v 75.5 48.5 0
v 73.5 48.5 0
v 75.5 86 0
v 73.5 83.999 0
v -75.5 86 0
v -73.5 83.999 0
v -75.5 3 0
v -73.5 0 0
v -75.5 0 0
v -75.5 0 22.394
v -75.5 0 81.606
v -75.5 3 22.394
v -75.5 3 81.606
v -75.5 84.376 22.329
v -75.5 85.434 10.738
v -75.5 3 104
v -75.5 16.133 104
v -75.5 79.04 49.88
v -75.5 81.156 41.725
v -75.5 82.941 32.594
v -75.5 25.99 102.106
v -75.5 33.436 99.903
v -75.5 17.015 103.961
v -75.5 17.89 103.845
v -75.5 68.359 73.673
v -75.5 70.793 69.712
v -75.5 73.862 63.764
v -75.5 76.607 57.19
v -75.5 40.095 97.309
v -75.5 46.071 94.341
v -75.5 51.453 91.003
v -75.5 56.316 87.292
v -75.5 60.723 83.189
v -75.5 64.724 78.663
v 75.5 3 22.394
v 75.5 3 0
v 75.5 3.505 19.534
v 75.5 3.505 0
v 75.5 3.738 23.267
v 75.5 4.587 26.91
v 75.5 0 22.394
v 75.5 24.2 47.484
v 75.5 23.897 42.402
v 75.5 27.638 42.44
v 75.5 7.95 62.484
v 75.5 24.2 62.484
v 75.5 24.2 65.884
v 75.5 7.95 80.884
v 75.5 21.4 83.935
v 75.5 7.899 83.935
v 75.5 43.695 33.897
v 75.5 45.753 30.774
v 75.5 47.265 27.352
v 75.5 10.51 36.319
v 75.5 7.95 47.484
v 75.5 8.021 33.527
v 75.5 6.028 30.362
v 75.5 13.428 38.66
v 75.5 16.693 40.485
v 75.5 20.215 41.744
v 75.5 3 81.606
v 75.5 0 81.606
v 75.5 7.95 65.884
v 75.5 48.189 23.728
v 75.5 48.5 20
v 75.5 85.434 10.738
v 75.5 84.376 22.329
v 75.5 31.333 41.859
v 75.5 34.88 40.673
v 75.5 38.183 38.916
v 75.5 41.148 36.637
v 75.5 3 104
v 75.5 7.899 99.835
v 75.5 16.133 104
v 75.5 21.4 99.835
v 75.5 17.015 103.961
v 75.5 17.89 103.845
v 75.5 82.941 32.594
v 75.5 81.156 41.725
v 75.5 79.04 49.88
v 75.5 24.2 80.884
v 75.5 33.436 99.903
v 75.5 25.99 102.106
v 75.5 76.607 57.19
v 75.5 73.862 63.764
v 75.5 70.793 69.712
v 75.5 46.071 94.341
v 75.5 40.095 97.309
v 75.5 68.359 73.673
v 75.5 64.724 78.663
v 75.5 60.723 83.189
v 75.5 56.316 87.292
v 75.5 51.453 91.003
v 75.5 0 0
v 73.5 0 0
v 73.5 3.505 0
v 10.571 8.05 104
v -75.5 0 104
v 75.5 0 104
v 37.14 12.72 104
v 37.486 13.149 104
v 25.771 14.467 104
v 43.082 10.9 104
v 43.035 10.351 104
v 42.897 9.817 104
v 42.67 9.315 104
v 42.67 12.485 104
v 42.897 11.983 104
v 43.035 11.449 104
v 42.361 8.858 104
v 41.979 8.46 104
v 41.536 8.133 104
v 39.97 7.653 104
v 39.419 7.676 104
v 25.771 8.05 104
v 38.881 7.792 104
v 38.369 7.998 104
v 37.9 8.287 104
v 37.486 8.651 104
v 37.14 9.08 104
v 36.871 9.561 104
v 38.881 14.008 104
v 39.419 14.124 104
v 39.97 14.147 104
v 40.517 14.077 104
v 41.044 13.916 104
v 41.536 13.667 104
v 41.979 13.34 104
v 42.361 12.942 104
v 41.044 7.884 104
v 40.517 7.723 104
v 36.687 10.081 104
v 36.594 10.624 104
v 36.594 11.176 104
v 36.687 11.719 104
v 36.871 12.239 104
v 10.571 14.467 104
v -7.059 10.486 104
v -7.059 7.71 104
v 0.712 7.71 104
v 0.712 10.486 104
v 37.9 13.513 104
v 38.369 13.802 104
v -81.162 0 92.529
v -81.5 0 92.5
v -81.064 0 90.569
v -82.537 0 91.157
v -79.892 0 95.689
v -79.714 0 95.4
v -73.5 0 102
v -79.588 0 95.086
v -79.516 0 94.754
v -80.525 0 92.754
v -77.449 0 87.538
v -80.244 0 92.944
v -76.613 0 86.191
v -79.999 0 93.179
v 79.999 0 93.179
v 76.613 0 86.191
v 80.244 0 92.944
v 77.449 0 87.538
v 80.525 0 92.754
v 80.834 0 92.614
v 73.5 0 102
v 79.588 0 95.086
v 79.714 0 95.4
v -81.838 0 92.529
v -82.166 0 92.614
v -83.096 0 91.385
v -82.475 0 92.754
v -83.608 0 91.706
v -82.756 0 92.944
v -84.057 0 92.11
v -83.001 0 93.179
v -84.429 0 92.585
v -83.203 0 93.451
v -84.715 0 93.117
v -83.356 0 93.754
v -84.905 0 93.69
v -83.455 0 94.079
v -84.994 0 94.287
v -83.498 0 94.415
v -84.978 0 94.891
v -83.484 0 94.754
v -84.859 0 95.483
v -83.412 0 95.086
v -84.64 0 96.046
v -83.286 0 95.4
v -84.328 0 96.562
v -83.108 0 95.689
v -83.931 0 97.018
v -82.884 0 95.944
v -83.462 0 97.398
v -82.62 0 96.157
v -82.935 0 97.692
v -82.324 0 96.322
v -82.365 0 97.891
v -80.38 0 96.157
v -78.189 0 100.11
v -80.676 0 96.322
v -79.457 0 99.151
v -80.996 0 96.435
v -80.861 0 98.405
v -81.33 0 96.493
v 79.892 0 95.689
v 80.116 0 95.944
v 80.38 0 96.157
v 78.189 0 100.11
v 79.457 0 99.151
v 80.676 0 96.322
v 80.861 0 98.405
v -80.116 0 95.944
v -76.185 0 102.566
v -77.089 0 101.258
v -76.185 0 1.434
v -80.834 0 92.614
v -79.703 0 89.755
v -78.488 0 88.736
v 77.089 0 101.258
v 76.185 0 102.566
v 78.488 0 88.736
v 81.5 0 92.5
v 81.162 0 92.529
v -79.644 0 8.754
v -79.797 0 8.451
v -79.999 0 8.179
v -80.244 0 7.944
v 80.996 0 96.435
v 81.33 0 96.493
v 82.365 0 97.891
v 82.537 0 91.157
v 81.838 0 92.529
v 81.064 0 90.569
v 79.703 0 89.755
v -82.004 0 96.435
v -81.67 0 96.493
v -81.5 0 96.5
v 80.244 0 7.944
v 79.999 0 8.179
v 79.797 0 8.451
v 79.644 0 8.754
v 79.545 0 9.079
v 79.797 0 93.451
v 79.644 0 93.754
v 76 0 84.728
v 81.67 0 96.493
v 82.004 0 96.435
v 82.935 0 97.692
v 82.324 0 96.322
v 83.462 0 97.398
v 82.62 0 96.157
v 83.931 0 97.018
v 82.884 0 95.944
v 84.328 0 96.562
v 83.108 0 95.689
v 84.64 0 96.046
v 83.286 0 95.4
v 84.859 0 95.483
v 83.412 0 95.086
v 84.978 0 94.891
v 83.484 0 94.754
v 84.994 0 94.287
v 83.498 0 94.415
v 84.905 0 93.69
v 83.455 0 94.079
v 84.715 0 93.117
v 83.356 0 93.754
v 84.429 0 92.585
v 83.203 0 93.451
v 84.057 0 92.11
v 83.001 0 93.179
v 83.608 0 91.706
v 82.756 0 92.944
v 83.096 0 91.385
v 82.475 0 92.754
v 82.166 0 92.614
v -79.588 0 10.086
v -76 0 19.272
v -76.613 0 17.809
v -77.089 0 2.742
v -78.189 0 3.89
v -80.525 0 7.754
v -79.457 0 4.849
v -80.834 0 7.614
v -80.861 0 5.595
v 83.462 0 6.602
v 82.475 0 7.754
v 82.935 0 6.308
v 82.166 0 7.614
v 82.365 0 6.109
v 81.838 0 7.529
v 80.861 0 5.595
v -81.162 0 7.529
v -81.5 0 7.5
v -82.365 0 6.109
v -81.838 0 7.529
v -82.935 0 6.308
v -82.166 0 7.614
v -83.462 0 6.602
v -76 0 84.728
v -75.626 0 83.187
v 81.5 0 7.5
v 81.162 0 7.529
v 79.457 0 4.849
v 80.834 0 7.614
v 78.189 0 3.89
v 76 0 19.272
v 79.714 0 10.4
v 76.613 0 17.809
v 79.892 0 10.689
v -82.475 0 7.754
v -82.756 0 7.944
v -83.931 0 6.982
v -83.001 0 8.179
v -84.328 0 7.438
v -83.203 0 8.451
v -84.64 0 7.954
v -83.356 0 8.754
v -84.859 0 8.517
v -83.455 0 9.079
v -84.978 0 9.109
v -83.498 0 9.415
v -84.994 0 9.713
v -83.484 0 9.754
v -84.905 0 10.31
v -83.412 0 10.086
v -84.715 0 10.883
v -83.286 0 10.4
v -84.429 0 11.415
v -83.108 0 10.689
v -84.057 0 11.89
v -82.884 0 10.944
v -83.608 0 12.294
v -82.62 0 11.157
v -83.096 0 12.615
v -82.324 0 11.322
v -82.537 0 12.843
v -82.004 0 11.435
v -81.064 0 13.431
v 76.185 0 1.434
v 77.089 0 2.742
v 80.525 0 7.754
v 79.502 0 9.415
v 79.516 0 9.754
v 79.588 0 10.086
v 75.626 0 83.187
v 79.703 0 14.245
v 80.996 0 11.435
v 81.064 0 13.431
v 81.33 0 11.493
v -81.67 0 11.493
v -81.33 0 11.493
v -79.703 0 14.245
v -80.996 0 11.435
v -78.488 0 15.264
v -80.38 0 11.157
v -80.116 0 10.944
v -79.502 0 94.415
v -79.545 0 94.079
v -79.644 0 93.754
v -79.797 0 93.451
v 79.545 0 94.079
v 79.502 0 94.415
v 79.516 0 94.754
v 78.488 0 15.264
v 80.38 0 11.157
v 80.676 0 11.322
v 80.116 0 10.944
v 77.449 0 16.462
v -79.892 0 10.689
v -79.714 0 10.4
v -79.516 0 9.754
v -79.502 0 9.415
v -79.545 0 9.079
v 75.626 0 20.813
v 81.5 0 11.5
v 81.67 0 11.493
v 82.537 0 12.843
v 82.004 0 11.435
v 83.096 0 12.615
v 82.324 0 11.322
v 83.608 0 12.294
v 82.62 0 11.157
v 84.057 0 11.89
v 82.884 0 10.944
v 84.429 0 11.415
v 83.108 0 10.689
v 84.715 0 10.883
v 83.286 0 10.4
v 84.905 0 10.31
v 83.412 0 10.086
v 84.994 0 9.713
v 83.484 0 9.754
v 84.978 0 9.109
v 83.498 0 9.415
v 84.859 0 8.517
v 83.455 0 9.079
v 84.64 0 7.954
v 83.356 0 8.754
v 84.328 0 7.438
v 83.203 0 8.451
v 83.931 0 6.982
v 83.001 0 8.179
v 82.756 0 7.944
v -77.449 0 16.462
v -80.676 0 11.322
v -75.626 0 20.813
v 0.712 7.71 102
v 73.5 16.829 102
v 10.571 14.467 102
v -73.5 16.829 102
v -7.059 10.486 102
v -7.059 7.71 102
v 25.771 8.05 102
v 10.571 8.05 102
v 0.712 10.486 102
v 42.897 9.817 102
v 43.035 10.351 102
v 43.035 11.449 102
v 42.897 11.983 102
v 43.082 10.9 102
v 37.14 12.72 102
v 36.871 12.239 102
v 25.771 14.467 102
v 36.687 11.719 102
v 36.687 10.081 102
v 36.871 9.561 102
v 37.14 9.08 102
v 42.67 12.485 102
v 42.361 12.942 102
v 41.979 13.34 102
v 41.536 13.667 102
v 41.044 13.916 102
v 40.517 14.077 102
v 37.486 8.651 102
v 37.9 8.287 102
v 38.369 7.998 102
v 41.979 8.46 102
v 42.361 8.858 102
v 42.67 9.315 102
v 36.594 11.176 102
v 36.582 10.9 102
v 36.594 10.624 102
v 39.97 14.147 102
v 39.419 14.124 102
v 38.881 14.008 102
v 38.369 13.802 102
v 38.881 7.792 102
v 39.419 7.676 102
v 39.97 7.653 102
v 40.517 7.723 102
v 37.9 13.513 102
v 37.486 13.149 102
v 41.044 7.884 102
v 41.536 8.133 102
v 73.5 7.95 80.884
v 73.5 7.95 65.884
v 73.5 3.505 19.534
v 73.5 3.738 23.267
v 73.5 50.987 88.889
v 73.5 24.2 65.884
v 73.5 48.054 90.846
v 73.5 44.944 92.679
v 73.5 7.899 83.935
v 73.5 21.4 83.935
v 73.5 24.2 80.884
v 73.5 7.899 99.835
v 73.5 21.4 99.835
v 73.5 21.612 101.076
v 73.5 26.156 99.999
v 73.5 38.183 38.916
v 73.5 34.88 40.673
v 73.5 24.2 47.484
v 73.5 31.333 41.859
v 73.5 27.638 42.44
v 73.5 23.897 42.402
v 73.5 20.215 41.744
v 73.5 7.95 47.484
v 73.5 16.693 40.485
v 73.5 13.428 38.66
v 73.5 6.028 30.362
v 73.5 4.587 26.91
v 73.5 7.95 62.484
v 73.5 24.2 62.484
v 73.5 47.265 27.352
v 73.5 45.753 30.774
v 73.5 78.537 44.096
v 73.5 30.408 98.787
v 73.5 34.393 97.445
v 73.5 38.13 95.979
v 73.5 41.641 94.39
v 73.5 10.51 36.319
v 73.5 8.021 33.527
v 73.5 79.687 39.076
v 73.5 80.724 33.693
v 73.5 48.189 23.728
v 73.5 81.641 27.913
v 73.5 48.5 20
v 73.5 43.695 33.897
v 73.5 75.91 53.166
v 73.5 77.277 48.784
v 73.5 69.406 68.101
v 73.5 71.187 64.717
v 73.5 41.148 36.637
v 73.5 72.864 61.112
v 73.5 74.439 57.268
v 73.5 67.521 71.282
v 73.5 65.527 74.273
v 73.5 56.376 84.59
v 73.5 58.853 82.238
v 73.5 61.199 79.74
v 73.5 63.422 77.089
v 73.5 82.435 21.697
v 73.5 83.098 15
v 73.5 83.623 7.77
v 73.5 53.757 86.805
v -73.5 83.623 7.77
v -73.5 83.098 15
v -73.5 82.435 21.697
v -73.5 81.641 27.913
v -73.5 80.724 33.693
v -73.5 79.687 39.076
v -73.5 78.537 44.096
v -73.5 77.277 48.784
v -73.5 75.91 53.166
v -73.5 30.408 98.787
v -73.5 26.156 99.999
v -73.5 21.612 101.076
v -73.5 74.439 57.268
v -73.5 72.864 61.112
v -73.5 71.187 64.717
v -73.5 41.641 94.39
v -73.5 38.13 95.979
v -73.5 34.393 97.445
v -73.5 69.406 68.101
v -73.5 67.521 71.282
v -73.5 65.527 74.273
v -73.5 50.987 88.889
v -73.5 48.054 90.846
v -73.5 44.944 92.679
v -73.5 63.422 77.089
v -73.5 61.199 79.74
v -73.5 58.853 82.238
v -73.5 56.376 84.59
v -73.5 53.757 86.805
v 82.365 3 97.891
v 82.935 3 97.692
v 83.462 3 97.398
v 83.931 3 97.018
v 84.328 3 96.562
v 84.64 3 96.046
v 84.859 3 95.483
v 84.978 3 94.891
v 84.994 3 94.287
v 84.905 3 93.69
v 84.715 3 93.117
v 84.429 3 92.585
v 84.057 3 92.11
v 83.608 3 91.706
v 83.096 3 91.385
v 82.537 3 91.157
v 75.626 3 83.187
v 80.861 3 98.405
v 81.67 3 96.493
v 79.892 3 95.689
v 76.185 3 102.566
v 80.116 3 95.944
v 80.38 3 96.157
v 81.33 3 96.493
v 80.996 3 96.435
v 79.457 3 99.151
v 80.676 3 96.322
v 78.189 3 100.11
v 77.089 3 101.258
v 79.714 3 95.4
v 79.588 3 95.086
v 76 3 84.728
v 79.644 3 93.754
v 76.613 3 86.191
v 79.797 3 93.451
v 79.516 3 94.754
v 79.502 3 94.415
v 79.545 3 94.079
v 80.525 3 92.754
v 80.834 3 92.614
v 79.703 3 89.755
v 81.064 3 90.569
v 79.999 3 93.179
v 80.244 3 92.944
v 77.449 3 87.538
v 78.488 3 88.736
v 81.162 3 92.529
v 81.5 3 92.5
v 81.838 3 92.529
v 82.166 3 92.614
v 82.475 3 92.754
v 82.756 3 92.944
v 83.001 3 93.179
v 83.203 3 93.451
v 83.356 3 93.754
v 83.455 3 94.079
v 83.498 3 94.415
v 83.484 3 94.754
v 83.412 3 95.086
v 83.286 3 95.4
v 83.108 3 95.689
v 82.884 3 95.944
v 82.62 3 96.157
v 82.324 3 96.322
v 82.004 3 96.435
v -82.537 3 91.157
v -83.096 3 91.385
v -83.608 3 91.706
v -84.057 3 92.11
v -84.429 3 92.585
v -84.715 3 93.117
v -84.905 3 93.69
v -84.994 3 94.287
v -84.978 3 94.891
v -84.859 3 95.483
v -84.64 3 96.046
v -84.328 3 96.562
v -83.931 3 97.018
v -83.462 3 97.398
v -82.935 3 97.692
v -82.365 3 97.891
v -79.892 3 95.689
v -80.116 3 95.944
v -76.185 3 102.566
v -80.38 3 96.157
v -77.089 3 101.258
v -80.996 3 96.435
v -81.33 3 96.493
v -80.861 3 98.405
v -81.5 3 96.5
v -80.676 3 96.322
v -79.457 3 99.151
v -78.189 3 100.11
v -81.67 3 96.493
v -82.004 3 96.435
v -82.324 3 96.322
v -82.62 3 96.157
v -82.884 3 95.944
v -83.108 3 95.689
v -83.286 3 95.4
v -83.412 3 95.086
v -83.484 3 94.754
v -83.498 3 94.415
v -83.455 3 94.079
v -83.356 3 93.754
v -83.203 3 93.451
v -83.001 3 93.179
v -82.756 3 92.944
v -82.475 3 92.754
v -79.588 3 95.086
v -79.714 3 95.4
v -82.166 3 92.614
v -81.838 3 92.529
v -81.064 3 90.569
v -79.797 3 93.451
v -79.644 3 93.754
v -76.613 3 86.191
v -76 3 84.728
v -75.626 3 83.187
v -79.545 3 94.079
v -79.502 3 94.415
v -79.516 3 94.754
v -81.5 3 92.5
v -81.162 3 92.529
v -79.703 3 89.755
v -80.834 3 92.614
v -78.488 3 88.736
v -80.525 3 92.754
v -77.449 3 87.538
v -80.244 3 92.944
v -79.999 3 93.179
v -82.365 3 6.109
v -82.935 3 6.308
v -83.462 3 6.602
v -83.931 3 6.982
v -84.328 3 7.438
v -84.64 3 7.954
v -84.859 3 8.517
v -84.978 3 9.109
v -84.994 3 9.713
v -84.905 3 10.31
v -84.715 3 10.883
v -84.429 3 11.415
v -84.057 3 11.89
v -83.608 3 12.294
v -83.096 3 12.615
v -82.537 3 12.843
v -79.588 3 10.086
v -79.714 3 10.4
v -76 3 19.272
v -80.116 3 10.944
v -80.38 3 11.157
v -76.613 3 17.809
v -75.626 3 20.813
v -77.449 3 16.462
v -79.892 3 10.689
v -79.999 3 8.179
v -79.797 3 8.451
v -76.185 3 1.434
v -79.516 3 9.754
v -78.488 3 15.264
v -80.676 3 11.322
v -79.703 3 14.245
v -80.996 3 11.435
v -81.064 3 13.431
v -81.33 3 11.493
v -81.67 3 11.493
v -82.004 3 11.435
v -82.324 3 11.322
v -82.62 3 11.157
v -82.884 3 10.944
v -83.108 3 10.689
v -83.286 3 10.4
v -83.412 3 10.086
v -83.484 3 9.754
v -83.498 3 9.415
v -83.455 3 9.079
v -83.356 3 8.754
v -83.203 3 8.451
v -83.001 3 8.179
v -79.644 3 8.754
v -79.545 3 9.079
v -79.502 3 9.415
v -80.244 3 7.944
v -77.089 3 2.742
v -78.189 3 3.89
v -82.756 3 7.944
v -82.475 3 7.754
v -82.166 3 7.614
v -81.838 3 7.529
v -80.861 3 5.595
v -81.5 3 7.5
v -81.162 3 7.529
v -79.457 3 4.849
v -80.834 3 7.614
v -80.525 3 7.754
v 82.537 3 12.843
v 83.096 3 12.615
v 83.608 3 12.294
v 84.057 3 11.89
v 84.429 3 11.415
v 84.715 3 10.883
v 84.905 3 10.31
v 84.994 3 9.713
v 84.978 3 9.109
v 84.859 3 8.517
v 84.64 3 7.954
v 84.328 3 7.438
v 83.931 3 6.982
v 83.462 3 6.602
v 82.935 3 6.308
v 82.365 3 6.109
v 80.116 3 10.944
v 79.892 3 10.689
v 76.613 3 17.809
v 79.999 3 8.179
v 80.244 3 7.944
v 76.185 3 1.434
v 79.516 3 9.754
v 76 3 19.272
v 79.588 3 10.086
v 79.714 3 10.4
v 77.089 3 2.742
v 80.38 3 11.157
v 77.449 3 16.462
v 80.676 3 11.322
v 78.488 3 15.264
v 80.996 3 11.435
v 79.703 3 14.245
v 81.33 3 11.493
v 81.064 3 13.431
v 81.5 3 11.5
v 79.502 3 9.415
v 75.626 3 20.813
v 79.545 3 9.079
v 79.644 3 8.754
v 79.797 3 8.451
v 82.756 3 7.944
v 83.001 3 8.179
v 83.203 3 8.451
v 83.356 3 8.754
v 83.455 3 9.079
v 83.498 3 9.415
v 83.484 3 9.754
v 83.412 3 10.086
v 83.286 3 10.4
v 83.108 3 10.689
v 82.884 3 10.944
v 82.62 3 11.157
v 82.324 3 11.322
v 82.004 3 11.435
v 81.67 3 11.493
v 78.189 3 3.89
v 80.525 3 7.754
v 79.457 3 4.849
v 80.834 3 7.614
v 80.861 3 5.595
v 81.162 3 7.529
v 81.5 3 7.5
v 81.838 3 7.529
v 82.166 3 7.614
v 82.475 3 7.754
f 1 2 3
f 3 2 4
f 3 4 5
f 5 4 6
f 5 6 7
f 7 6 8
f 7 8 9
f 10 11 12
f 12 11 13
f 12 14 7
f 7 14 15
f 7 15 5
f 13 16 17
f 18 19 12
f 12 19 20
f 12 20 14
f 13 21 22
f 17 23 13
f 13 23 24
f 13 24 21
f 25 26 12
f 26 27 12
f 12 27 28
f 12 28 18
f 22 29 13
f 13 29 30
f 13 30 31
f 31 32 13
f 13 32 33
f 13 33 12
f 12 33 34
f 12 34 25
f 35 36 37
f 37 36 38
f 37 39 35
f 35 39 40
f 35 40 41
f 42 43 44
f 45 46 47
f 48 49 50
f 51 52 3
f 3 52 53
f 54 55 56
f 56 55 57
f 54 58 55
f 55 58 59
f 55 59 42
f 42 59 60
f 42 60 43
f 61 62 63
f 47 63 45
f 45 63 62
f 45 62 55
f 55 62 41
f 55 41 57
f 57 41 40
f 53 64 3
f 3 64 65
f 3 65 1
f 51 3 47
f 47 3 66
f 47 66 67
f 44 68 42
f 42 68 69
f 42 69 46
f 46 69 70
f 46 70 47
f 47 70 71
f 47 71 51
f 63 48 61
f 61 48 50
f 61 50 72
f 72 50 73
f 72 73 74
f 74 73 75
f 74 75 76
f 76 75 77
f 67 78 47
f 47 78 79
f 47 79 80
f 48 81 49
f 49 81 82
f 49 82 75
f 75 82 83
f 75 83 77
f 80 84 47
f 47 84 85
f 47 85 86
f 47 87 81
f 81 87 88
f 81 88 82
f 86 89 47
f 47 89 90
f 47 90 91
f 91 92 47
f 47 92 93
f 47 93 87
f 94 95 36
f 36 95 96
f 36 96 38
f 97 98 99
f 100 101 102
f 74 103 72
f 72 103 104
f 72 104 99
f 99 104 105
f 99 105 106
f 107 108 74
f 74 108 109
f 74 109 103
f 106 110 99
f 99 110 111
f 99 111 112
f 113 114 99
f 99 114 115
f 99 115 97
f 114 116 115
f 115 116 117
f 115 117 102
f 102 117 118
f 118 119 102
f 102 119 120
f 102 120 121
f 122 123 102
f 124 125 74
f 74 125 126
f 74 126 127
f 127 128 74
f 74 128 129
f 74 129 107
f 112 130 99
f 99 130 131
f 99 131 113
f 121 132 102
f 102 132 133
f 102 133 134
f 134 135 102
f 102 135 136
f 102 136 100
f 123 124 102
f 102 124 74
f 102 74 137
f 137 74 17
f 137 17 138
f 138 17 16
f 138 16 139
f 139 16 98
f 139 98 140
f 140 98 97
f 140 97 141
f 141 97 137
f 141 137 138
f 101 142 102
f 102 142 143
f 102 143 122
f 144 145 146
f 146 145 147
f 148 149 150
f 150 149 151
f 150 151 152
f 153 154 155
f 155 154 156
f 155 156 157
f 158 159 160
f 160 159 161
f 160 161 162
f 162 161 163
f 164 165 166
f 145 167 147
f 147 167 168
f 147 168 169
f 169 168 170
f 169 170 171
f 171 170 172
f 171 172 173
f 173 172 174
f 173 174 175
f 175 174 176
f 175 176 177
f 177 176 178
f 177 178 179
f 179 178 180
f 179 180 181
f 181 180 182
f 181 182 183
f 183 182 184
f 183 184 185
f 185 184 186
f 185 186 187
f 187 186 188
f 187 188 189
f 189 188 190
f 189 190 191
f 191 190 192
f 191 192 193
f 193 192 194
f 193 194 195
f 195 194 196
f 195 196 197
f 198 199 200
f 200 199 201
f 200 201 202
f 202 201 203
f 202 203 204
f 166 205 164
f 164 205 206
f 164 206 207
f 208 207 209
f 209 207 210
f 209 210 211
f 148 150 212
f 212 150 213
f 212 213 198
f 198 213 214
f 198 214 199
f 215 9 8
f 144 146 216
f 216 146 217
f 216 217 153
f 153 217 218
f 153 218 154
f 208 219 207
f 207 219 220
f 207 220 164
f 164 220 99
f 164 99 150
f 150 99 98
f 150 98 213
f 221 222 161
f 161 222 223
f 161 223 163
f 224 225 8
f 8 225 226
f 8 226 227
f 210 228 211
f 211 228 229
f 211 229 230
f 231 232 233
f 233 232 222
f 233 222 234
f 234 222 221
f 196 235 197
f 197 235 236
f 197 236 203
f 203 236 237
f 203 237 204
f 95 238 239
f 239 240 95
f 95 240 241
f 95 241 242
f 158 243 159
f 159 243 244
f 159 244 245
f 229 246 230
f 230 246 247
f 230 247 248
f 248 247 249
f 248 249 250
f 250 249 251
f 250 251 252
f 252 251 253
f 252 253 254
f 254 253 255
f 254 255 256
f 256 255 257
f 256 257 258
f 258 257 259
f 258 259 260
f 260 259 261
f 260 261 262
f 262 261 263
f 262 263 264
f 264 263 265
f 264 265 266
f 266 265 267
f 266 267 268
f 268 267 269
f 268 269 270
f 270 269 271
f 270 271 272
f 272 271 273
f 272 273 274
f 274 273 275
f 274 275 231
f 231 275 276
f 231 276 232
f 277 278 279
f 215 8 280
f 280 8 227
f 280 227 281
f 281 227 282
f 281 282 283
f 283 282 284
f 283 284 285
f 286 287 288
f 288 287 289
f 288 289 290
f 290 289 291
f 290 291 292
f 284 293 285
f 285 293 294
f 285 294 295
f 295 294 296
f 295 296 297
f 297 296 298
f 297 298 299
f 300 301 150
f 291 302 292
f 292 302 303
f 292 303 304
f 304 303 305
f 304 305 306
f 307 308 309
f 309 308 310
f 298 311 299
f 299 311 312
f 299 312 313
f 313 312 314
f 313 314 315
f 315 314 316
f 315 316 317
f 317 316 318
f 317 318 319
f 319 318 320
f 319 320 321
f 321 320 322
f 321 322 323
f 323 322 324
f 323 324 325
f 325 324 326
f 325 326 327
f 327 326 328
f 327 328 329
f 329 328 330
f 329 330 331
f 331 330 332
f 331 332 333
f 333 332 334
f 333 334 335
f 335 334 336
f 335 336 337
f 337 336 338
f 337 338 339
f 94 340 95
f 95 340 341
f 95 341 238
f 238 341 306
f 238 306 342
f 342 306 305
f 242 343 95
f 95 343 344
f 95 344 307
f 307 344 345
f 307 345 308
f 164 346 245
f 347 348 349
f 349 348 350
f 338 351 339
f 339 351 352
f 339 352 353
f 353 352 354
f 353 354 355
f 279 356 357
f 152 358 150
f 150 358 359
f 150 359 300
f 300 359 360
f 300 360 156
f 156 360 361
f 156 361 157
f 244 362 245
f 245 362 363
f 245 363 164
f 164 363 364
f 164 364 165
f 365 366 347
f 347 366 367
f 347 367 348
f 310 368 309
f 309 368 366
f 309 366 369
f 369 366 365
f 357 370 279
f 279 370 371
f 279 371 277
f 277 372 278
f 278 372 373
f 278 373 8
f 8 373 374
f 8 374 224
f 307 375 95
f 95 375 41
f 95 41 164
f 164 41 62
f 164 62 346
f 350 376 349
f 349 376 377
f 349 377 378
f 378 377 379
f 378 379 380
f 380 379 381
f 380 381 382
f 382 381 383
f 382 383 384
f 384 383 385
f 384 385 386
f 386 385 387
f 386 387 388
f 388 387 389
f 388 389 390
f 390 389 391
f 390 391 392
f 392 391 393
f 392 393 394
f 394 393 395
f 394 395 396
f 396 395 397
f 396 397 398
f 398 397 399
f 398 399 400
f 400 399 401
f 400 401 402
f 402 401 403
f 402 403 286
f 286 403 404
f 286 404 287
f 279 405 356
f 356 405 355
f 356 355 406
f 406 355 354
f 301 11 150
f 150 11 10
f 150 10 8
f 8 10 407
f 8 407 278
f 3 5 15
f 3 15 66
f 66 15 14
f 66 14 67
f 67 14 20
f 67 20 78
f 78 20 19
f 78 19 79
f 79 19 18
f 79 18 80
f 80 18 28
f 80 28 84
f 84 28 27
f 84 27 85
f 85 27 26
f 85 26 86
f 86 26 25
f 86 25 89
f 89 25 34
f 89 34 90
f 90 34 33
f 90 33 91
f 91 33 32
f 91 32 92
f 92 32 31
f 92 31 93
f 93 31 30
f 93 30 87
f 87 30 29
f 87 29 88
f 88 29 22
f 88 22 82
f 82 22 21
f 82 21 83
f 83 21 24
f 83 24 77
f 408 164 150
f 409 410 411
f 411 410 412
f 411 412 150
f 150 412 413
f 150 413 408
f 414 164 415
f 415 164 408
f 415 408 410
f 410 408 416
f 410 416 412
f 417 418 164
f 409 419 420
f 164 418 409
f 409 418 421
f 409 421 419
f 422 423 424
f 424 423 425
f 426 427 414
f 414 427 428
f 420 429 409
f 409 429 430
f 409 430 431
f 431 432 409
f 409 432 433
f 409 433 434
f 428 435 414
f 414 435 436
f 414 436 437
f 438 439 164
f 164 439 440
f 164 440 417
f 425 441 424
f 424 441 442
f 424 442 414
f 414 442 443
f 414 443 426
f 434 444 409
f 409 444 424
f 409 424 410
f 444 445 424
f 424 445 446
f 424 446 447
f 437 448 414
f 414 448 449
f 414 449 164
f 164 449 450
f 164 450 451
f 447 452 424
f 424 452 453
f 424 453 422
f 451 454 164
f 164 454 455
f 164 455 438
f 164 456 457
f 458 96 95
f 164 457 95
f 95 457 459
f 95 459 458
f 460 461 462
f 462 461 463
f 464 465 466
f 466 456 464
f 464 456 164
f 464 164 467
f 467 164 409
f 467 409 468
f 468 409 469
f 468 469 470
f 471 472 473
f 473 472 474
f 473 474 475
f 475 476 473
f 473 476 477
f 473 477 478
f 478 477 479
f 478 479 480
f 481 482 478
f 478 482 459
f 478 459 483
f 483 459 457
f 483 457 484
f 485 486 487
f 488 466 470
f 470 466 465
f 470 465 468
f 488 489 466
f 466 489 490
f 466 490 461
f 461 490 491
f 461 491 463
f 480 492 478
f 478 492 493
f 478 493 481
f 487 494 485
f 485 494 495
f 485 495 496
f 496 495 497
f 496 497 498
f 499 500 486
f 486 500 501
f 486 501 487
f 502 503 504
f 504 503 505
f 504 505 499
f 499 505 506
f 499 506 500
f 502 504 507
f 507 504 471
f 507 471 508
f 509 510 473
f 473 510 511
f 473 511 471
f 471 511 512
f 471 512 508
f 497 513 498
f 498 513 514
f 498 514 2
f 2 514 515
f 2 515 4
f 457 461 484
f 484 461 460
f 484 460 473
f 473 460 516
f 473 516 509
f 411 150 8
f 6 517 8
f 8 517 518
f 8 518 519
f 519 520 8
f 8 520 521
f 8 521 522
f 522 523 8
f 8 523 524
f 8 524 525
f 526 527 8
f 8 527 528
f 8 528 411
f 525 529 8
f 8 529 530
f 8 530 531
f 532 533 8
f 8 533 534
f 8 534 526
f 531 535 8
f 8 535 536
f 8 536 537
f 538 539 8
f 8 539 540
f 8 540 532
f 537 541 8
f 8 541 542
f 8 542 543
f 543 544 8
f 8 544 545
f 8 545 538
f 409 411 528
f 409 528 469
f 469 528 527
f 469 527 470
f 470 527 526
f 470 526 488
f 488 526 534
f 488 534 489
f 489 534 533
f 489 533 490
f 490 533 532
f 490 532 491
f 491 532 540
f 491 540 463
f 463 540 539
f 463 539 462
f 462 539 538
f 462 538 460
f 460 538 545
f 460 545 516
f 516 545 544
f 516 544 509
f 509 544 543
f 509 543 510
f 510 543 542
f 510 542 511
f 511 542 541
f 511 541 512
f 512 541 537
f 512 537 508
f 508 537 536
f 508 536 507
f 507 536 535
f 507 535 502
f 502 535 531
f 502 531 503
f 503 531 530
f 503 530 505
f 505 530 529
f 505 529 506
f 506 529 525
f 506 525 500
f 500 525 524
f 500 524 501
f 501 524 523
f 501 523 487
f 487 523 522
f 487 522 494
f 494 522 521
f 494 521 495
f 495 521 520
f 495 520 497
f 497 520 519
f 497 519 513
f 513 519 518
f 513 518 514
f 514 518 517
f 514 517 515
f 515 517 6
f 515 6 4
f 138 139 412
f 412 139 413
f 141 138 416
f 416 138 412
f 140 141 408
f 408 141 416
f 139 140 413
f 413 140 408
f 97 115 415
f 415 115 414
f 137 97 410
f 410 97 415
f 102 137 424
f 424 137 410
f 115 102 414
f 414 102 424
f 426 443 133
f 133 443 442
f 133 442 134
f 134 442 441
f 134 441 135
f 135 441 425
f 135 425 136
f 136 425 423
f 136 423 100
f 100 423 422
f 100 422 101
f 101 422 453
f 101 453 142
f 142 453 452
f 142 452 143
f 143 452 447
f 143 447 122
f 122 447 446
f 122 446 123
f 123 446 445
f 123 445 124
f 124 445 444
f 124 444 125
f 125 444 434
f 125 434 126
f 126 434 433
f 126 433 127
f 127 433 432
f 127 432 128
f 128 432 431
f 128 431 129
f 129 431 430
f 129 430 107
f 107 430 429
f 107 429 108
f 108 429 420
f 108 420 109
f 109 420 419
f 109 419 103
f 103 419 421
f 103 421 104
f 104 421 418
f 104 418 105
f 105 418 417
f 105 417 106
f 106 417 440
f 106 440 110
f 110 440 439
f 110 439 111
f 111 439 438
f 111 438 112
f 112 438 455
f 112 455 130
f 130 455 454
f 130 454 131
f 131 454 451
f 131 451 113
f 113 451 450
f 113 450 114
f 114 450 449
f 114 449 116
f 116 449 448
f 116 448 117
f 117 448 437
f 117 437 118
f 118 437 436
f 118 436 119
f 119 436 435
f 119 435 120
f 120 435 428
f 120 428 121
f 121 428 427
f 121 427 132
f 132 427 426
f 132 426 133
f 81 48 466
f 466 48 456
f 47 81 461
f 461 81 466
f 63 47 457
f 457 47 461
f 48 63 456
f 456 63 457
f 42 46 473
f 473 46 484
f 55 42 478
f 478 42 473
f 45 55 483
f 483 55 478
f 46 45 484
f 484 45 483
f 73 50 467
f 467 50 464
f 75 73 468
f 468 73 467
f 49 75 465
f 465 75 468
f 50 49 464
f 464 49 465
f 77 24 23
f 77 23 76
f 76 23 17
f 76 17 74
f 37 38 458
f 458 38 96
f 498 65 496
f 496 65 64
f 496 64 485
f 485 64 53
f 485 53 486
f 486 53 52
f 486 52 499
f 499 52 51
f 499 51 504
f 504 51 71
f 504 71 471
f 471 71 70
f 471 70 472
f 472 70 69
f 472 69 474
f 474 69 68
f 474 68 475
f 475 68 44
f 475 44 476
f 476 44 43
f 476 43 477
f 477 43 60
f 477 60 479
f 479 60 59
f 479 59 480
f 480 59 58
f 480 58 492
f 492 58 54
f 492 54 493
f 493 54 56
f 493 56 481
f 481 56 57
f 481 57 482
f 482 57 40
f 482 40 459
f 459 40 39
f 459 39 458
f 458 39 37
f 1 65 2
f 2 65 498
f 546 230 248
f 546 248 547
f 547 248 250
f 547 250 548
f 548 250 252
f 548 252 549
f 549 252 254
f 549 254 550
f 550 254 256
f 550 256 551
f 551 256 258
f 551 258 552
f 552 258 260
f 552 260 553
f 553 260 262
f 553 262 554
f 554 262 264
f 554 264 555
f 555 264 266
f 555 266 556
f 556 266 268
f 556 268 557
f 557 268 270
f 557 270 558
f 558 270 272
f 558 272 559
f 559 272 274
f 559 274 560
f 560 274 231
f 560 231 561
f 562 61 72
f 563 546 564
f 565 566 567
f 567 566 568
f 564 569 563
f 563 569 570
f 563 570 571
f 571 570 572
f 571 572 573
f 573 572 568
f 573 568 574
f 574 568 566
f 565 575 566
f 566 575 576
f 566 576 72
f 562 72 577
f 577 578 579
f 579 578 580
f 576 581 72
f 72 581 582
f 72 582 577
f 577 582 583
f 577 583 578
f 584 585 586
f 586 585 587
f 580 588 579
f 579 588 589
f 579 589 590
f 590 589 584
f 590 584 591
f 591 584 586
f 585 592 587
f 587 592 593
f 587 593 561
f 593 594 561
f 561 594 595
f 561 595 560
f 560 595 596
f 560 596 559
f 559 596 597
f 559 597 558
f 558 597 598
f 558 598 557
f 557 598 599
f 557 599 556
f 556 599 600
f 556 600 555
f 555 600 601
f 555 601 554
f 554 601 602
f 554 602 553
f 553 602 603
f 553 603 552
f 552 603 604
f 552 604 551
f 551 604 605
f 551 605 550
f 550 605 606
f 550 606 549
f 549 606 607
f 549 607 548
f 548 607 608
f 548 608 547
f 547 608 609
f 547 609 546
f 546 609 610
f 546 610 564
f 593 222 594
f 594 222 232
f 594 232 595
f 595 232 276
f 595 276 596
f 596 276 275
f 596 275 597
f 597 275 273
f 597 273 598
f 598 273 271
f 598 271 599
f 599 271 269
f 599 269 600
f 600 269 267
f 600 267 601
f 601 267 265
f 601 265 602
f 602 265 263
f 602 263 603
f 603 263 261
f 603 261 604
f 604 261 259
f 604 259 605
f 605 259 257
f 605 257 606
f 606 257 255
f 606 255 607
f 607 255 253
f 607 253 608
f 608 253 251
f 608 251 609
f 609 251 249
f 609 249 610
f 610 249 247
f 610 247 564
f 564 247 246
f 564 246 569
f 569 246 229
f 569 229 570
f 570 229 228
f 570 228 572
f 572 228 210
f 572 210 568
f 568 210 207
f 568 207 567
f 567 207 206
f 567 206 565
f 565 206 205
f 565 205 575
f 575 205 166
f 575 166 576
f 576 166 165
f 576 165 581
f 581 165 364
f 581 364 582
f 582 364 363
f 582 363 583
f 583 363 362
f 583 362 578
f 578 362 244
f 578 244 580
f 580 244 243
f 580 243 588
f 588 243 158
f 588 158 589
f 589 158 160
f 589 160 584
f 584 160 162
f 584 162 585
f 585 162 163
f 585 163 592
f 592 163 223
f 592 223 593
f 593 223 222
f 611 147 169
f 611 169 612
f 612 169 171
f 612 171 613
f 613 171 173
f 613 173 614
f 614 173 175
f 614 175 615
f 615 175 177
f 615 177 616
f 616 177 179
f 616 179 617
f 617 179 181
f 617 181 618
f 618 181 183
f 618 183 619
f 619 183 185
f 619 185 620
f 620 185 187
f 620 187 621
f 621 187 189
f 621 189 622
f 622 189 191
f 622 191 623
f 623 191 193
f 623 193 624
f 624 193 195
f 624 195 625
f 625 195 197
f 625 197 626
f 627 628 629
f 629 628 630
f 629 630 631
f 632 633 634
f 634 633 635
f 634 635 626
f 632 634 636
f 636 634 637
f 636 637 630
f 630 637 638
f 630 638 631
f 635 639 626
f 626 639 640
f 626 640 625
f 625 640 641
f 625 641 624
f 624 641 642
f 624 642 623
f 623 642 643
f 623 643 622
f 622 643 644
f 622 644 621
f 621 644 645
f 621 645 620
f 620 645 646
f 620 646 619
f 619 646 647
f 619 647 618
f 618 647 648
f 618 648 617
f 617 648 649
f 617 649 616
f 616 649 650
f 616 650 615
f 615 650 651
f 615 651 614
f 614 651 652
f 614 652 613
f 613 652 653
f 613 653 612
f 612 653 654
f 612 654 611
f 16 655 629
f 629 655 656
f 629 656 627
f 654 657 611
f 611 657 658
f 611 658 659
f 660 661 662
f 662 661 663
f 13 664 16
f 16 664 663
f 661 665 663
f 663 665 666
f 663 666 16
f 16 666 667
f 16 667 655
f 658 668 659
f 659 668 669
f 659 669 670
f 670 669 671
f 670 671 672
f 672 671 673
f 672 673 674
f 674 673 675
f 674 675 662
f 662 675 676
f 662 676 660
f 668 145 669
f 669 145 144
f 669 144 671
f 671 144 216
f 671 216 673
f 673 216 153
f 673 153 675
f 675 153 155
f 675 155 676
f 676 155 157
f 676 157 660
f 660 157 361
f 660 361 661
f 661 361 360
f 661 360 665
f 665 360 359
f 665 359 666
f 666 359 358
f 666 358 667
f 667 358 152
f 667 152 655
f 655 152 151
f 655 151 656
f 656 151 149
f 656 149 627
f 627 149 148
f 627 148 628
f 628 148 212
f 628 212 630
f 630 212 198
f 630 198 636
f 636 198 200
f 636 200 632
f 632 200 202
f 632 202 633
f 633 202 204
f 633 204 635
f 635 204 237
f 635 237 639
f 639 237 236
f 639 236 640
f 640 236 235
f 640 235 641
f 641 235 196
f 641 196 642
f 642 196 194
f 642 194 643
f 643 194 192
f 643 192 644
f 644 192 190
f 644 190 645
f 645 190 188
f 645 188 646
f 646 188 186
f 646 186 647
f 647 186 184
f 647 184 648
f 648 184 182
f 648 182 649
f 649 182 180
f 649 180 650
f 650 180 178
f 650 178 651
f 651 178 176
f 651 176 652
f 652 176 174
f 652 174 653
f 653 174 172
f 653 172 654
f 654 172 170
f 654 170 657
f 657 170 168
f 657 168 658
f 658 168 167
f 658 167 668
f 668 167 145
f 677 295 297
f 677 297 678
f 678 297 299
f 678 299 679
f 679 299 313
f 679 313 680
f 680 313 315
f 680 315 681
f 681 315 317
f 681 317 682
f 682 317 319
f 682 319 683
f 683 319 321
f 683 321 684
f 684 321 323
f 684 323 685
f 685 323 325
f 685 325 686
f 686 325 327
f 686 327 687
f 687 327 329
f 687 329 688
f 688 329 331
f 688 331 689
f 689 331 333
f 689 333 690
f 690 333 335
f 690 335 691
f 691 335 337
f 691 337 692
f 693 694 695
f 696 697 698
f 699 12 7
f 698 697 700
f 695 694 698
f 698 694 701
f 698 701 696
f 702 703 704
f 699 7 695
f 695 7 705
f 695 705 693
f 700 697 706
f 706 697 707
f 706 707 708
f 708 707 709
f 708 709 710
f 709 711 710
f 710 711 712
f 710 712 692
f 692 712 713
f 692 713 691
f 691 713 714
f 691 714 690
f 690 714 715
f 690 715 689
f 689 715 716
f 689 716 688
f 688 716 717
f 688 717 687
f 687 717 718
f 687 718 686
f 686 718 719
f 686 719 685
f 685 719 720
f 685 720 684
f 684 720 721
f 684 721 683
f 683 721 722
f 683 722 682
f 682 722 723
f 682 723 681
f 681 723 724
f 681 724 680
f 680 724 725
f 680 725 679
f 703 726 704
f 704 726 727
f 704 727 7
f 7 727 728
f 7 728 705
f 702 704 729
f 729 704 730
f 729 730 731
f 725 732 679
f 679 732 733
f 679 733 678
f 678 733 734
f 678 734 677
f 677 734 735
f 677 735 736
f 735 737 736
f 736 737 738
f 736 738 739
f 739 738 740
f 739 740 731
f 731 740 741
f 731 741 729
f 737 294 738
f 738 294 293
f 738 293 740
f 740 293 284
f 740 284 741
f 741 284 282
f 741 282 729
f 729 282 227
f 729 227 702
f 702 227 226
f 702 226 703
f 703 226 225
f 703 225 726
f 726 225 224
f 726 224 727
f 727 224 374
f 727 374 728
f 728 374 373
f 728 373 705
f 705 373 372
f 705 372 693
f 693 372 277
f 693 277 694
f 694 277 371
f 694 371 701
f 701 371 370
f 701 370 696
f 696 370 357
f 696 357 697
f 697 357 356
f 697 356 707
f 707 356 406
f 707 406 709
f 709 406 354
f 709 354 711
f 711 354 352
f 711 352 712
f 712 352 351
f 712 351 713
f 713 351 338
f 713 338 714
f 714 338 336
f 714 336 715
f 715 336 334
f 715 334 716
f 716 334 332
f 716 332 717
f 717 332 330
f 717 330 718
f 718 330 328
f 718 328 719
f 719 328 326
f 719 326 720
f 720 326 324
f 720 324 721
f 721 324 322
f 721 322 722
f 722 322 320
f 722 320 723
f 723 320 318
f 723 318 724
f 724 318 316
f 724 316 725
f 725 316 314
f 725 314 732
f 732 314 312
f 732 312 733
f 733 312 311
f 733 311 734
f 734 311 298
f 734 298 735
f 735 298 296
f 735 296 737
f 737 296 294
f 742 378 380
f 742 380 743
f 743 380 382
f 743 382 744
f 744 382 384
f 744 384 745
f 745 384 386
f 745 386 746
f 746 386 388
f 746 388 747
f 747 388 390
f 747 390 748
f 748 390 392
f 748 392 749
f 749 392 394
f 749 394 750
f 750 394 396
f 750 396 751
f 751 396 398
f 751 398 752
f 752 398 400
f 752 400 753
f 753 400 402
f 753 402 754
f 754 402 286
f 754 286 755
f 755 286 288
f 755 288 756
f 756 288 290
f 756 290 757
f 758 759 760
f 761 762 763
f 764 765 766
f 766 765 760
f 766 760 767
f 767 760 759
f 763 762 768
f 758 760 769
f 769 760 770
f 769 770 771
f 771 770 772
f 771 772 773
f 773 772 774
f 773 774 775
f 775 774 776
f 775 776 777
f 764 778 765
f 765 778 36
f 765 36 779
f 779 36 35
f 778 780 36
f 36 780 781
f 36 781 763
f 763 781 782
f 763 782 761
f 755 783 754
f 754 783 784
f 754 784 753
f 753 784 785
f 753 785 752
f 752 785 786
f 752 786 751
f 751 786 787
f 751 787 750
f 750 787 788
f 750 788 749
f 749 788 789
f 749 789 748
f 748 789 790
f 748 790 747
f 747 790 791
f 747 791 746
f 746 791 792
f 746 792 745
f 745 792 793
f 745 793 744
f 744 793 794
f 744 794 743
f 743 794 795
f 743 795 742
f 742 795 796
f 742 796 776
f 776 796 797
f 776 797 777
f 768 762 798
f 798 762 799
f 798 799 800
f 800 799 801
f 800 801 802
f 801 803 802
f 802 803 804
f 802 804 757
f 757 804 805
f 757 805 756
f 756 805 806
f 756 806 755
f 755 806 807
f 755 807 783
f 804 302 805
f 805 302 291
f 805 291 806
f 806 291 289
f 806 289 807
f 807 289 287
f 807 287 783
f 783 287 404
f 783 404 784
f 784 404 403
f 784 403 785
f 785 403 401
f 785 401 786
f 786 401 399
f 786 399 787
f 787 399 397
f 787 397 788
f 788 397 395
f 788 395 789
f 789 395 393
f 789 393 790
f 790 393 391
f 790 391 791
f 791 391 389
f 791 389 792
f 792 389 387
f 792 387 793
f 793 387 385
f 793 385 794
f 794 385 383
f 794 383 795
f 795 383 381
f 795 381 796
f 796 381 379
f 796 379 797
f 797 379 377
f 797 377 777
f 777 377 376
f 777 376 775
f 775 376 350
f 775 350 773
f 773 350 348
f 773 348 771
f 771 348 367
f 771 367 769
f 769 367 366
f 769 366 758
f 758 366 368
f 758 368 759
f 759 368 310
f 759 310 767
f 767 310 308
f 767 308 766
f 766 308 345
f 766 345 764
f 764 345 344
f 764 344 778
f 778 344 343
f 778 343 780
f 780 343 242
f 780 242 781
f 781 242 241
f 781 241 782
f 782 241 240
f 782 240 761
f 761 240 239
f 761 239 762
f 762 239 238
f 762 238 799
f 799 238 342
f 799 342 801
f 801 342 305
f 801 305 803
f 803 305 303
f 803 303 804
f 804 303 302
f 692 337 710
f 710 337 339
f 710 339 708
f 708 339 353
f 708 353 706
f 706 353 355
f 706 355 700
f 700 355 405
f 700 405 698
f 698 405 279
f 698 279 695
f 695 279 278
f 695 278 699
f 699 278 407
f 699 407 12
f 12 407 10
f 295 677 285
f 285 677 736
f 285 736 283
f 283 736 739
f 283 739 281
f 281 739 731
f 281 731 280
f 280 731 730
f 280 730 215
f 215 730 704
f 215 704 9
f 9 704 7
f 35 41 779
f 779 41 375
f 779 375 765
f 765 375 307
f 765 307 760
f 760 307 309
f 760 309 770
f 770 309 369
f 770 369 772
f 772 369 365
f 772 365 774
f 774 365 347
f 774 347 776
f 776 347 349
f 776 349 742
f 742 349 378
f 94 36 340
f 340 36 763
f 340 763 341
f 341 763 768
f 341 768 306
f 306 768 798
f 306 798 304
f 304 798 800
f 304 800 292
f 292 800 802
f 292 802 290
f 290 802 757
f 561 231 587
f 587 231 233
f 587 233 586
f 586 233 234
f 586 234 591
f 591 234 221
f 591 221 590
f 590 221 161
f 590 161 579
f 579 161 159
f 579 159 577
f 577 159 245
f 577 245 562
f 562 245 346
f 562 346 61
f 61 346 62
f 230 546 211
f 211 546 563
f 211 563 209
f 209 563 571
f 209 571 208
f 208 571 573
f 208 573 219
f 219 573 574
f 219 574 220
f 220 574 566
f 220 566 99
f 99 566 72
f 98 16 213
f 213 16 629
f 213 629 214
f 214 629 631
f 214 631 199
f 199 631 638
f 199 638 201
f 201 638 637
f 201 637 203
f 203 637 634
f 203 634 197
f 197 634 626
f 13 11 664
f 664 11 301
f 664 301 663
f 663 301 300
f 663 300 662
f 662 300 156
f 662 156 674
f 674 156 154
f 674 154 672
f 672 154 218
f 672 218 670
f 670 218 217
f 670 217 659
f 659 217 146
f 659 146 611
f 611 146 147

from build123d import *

# Parameters (mm, degrees)
SKETCH2_W           = 151
SKETCH2_H           = 104
BOSS_EXTRUDE1_DEPTH = 2
BOSS_EXTRUDE2_DEPTH = 151
SHELL1_T            = -2
SKETCH4_R           = 3.25
CUT_EXTRUDE1_DEPTH  = 10
SKETCH5_W           = 15
SKETCH5_H           = 16.25
CUT_EXTRUDE2_DEPTH  = 10
FILLET3_R           = 10
CUT_EXTRUDE3_DEPTH  = 10
SKETCH7_R           = 2
BOSS_EXTRUDE3_DEPTH = 3
FILLET4_DEPTH       = 3
FILLET5_R           = 10
SKETCH9_W           = 147
SKETCH9_H           = 102
CUT_EXTRUDE5_DEPTH  = 10


with BuildPart() as part:
    # Sketch2 → Boss-Extrude1 (new body)
    with BuildSketch(Plane(origin=(0, 0, 0), x_dir=(1, 0, 0), z_dir=(0, 1, 0))):
        with Locations((0, -52)):
            Rectangle(SKETCH2_W, SKETCH2_H)
    extrude(amount=BOSS_EXTRUDE1_DEPTH)

    # Sketch3 → Boss-Extrude2 (add)
    with BuildSketch(Plane.ZY.offset(75.5)):
        with BuildLine():
            Line((0, 86), (0, 2))
            Line((0, 2), (104, 2))
            Line((104, 2), (104, 17))
            add(Edge.make_bspline(
                [(0, 86), (63.599399009, 83.650763879), (95.616153821, 65.97970086), (104, 17)],
                knots=[0, 0, 0, 0, 1, 1, 1, 1], degree=3))
        make_face()
    extrude(amount=-BOSS_EXTRUDE2_DEPTH)

    # Shell1
    shell1_openings = [part.faces().sort_by_distance(p)[0] for p in [
        (0, 43, 0),
    ]]
    offset(amount=SHELL1_T, openings=shell1_openings, kind=Kind.INTERSECTION)

    # Sketch4 → Cut-Extrude1 (cut)
    with BuildSketch(Plane.XY.offset(104)):
        with Locations((39.832226511, 10.9)):
            Circle(SKETCH4_R)
        Polygon((-7.059283816, 10.485810058), (-7.059283816, 7.709546788), (-6.933696011, 7.709546788), (0.586748493, 7.709546788), (0.712336299, 7.709546788), (0.712336299, 10.485810058), (0.586748493, 10.485810058), (-0.123473759, 10.485810058), (-6.223473759, 10.485810058), (-6.933696011, 10.485810058), align=None)
        Polygon((12.260960064, 8.05), (14.595960064, 8.05), (25.670959902, 8.05), (25.770960048, 8.05), (25.770960048, 14.466884605), (25.670960048, 14.466884605), (10.670959945, 14.466884605), (10.570959945, 14.466884605), (10.570959945, 8.05), (10.670960001, 8.05), align=None)
    extrude(amount=-CUT_EXTRUDE1_DEPTH, mode=Mode.SUBTRACT)

    # Sketch5 → Cut-Extrude2 (cut)
    with BuildSketch(Plane(origin=(75.5, 0, 0), x_dir=(0, 0, -1), z_dir=(1, 0, 0))):
        Polygon((-99.83530855, 21.4), (-99.83530855, 7.899), (-83.93530855, 7.899), (-83.93530855, 21.4), (-99.53530855, 21.4), align=None)
        Polygon((-65.884309216, 7.95), (-80.884309216, 7.95), (-80.884309216, 21.65), (-80.884309216, 24.2), (-78.334309216, 24.2), (-65.884309216, 24.2), align=None)
        with Locations((-54.984309216, 16.075)):
            Rectangle(SKETCH5_W, SKETCH5_H)
    extrude(amount=-CUT_EXTRUDE2_DEPTH, mode=Mode.SUBTRACT)

    # Fillet3
    fillet3_edges = [part.edges().sort_by_distance(p)[0] for p in [
        (0, 17, 104),
    ]]
    fillet(fillet3_edges, radius=FILLET3_R)

    # Sketch6 → Cut-Extrude3 (cut)
    with BuildSketch(Plane(origin=(75.5, 0, 0), x_dir=(0, 0, -1), z_dir=(1, 0, 0))):
        with BuildLine():
            Line((-20, 48.5), (0, 48.5))
            Line((0, 48.5), (0, 3.504835596))
            Line((0, 3.504835596), (-19.533546963, 3.504835596))
            ThreePointArc((-19.533546963, 3.504835596), (-42.498791069, 25.766760949), (-20, 48.5))
        make_face()
    extrude(amount=-CUT_EXTRUDE3_DEPTH, mode=Mode.SUBTRACT)

    # Sketch7 → Boss-Extrude3 (add)
    # profile 1 of 4: a face of its own
    with BuildSketch(Plane.XZ):
        with BuildLine():
            Line((75.5, 98), (75.5, 91))
            Line((75.5, 91), (81.5, 91))
            ThreePointArc((81.5, 91), (85, 94.5), (81.5, 98))
            Line((81.5, 98), (75.5, 98))
        make_face()
        with Locations(Location((81.5, 94.5, 0), (0, 0, 270))):
            Circle(SKETCH7_R, mode=Mode.SUBTRACT)
    # profile 2 of 4: a face of its own
    with BuildSketch(Plane.XZ):
        with BuildLine():
            Line((-81.5, 91), (-75.5, 91))
            Line((-75.5, 91), (-75.5, 98))
            Line((-75.5, 98), (-81.5, 98))
            ThreePointArc((-81.5, 98), (-85, 94.5), (-81.5, 91))
        make_face()
        with Locations(Location((-81.5, 94.5, 0), (0, 0, 90))):
            Circle(SKETCH7_R, mode=Mode.SUBTRACT)
    # profile 3 of 4: a face of its own
    with BuildSketch(Plane.XZ):
        with BuildLine():
            Line((-75.5, 6), (-75.5, 13))
            Line((-75.5, 13), (-81.5, 13))
            ThreePointArc((-81.5, 13), (-85, 9.5), (-81.5, 6))
            Line((-81.5, 6), (-75.5, 6))
        make_face()
        with Locations(Location((-81.5, 9.5, 0), (0, 0, 270))):
            Circle(SKETCH7_R, mode=Mode.SUBTRACT)
    # profile 4 of 4: a face of its own
    with BuildSketch(Plane.XZ):
        with BuildLine():
            Line((81.5, 13), (75.5, 13))
            Line((75.5, 13), (75.5, 6))
            Line((75.5, 6), (81.5, 6))
            ThreePointArc((81.5, 6), (85, 9.5), (81.5, 13))
        make_face()
        with Locations(Location((81.5, 9.5, 0), (0, 0, 90))):
            Circle(SKETCH7_R, mode=Mode.SUBTRACT)
    extrude(amount=-BOSS_EXTRUDE3_DEPTH)

    # Fillet4: read off the stored shape, not the designer's step
    # Fillet4 outline → Fillet4 (add)
    with BuildSketch(Plane(origin=(0, 0, 0), x_dir=(1, 0, 0), z_dir=(0, 1, 0))):
        with BuildLine():
            ThreePointArc((-81.5, -13), (-82.024439287, -12.960486011), (-82.537037037, -12.842836248))
            ThreePointArc((-82.537037037, -12.842836248), (-77.449235141, -16.462086818), (-75.5, -22.393796958))
            Line((-75.5, -22.393796958), (-75.5, -13))
            Line((-75.5, -13), (-81.5, -13))
        make_face()
        with BuildLine():
            ThreePointArc((-75.5, 0), (-78.189320969, -3.889565288), (-82.365092102, -6.108596801))
            ThreePointArc((-82.365092102, -6.108596801), (-81.935940825, -6.027255322), (-81.5, -6))
            Line((-81.5, -6), (-75.5, -6))
            Line((-75.5, -6), (-75.5, 0))
        make_face()
    extrude(amount=FILLET4_DEPTH)

    # Fillet5
    # the kernel refuses this fillet: 10 mm, written as the material it adds along each edge
    with BuildSketch(Plane(origin=(75.5, 0, 13), x_dir=(0, 0, 1), z_dir=(0, 1, 0)), Plane(origin=(-75.5, 0, 91), x_dir=(0, 0, -1), z_dir=(0, 1, 0))) as fillet5_piece_1:
        with BuildLine():
            CenterArc((9.393796958, 10), FILLET5_R, 197.235285257, 72.764714743)
            Line((-0.157163752, 7.037037037), (-1.112259823, 6.740740741))
            ThreePointArc((-1.112259823, 6.740740741), (-1, 6), (-1, 0))
            Line((-1, 0), (0, -1))
            Line((0, -1), (9.393796958, -1))
            Line((9.393796958, -1), (9.393796958, 0))
        make_face()
    extrude(amount=3)
    with BuildSketch(Plane(origin=(75.5, 0, 6), x_dir=(0, 0, -1), z_dir=(0, 1, 0)), Plane(origin=(-75.5, 0, 98), x_dir=(0, 0, 1), z_dir=(0, 1, 0))) as fillet5_piece_2:
        with BuildLine():
            CenterArc((9.581126623, -9.33678382), FILLET5_R, 110.984333313, 54.705605323)
            Line((-0.108596801, -6.865092102), (-1.077569144, -6.61792293))
            ThreePointArc((-1.077569144, -6.61792293), (-1, -6), (-1, 0))
            Line((-1, 0), (0, 1))
            ThreePointArc((0, 1), (3, 1), (5.641887338, 0.933678382))
            Line((5.641887338, 0.933678382), (6, 0))
        make_face()
    extrude(amount=3)
    with BuildSketch(Plane(origin=(75.5, 0, 91), x_dir=(0, 0, -1), z_dir=(0, 1, 0))) as fillet5_piece_3:
        with BuildLine():
            CenterArc((9.393796958, -10), FILLET5_R, 90, 72.764714743)
            Line((-0.157163752, -7.037037037), (-1.112259823, -6.740740741))
            ThreePointArc((-1.112259823, -6.740740741), (-1, -6), (-1, 0))
            Line((-1, 0), (0, 1))
            Line((0, 1), (9.393796958, 1))
            Line((9.393796958, 1), (9.393796958, 0))
        make_face()
    extrude(amount=3)
    with BuildSketch(Plane(origin=(75.5, 0, 98), x_dir=(0, 0, 1), z_dir=(0, 1, 0))) as fillet5_piece_4:
        with BuildLine():
            CenterArc((9.581126623, 9.33678382), FILLET5_R, 194.310061364, 54.705605323)
            Line((-0.108596801, 6.865092102), (-1.077569144, 6.61792293))
            ThreePointArc((-1.077569144, 6.61792293), (-1, 6), (-1, 0))
            Line((-1, 0), (0, -1))
            ThreePointArc((0, -1), (3, -1), (5.641887338, -0.933678382))
            Line((5.641887338, -0.933678382), (6, 0))
        make_face()
    extrude(amount=3)

    # Sketch9 → Cut-Extrude5 (cut)
    with BuildSketch(Plane(origin=(0, 2, 0), x_dir=(1, 0, 0), z_dir=(0, 1, 0))):
        with Locations((0, -51)):
            Rectangle(SKETCH9_W, SKETCH9_H)
    extrude(amount=-CUT_EXTRUDE5_DEPTH, mode=Mode.SUBTRACT)


solid = part.part
